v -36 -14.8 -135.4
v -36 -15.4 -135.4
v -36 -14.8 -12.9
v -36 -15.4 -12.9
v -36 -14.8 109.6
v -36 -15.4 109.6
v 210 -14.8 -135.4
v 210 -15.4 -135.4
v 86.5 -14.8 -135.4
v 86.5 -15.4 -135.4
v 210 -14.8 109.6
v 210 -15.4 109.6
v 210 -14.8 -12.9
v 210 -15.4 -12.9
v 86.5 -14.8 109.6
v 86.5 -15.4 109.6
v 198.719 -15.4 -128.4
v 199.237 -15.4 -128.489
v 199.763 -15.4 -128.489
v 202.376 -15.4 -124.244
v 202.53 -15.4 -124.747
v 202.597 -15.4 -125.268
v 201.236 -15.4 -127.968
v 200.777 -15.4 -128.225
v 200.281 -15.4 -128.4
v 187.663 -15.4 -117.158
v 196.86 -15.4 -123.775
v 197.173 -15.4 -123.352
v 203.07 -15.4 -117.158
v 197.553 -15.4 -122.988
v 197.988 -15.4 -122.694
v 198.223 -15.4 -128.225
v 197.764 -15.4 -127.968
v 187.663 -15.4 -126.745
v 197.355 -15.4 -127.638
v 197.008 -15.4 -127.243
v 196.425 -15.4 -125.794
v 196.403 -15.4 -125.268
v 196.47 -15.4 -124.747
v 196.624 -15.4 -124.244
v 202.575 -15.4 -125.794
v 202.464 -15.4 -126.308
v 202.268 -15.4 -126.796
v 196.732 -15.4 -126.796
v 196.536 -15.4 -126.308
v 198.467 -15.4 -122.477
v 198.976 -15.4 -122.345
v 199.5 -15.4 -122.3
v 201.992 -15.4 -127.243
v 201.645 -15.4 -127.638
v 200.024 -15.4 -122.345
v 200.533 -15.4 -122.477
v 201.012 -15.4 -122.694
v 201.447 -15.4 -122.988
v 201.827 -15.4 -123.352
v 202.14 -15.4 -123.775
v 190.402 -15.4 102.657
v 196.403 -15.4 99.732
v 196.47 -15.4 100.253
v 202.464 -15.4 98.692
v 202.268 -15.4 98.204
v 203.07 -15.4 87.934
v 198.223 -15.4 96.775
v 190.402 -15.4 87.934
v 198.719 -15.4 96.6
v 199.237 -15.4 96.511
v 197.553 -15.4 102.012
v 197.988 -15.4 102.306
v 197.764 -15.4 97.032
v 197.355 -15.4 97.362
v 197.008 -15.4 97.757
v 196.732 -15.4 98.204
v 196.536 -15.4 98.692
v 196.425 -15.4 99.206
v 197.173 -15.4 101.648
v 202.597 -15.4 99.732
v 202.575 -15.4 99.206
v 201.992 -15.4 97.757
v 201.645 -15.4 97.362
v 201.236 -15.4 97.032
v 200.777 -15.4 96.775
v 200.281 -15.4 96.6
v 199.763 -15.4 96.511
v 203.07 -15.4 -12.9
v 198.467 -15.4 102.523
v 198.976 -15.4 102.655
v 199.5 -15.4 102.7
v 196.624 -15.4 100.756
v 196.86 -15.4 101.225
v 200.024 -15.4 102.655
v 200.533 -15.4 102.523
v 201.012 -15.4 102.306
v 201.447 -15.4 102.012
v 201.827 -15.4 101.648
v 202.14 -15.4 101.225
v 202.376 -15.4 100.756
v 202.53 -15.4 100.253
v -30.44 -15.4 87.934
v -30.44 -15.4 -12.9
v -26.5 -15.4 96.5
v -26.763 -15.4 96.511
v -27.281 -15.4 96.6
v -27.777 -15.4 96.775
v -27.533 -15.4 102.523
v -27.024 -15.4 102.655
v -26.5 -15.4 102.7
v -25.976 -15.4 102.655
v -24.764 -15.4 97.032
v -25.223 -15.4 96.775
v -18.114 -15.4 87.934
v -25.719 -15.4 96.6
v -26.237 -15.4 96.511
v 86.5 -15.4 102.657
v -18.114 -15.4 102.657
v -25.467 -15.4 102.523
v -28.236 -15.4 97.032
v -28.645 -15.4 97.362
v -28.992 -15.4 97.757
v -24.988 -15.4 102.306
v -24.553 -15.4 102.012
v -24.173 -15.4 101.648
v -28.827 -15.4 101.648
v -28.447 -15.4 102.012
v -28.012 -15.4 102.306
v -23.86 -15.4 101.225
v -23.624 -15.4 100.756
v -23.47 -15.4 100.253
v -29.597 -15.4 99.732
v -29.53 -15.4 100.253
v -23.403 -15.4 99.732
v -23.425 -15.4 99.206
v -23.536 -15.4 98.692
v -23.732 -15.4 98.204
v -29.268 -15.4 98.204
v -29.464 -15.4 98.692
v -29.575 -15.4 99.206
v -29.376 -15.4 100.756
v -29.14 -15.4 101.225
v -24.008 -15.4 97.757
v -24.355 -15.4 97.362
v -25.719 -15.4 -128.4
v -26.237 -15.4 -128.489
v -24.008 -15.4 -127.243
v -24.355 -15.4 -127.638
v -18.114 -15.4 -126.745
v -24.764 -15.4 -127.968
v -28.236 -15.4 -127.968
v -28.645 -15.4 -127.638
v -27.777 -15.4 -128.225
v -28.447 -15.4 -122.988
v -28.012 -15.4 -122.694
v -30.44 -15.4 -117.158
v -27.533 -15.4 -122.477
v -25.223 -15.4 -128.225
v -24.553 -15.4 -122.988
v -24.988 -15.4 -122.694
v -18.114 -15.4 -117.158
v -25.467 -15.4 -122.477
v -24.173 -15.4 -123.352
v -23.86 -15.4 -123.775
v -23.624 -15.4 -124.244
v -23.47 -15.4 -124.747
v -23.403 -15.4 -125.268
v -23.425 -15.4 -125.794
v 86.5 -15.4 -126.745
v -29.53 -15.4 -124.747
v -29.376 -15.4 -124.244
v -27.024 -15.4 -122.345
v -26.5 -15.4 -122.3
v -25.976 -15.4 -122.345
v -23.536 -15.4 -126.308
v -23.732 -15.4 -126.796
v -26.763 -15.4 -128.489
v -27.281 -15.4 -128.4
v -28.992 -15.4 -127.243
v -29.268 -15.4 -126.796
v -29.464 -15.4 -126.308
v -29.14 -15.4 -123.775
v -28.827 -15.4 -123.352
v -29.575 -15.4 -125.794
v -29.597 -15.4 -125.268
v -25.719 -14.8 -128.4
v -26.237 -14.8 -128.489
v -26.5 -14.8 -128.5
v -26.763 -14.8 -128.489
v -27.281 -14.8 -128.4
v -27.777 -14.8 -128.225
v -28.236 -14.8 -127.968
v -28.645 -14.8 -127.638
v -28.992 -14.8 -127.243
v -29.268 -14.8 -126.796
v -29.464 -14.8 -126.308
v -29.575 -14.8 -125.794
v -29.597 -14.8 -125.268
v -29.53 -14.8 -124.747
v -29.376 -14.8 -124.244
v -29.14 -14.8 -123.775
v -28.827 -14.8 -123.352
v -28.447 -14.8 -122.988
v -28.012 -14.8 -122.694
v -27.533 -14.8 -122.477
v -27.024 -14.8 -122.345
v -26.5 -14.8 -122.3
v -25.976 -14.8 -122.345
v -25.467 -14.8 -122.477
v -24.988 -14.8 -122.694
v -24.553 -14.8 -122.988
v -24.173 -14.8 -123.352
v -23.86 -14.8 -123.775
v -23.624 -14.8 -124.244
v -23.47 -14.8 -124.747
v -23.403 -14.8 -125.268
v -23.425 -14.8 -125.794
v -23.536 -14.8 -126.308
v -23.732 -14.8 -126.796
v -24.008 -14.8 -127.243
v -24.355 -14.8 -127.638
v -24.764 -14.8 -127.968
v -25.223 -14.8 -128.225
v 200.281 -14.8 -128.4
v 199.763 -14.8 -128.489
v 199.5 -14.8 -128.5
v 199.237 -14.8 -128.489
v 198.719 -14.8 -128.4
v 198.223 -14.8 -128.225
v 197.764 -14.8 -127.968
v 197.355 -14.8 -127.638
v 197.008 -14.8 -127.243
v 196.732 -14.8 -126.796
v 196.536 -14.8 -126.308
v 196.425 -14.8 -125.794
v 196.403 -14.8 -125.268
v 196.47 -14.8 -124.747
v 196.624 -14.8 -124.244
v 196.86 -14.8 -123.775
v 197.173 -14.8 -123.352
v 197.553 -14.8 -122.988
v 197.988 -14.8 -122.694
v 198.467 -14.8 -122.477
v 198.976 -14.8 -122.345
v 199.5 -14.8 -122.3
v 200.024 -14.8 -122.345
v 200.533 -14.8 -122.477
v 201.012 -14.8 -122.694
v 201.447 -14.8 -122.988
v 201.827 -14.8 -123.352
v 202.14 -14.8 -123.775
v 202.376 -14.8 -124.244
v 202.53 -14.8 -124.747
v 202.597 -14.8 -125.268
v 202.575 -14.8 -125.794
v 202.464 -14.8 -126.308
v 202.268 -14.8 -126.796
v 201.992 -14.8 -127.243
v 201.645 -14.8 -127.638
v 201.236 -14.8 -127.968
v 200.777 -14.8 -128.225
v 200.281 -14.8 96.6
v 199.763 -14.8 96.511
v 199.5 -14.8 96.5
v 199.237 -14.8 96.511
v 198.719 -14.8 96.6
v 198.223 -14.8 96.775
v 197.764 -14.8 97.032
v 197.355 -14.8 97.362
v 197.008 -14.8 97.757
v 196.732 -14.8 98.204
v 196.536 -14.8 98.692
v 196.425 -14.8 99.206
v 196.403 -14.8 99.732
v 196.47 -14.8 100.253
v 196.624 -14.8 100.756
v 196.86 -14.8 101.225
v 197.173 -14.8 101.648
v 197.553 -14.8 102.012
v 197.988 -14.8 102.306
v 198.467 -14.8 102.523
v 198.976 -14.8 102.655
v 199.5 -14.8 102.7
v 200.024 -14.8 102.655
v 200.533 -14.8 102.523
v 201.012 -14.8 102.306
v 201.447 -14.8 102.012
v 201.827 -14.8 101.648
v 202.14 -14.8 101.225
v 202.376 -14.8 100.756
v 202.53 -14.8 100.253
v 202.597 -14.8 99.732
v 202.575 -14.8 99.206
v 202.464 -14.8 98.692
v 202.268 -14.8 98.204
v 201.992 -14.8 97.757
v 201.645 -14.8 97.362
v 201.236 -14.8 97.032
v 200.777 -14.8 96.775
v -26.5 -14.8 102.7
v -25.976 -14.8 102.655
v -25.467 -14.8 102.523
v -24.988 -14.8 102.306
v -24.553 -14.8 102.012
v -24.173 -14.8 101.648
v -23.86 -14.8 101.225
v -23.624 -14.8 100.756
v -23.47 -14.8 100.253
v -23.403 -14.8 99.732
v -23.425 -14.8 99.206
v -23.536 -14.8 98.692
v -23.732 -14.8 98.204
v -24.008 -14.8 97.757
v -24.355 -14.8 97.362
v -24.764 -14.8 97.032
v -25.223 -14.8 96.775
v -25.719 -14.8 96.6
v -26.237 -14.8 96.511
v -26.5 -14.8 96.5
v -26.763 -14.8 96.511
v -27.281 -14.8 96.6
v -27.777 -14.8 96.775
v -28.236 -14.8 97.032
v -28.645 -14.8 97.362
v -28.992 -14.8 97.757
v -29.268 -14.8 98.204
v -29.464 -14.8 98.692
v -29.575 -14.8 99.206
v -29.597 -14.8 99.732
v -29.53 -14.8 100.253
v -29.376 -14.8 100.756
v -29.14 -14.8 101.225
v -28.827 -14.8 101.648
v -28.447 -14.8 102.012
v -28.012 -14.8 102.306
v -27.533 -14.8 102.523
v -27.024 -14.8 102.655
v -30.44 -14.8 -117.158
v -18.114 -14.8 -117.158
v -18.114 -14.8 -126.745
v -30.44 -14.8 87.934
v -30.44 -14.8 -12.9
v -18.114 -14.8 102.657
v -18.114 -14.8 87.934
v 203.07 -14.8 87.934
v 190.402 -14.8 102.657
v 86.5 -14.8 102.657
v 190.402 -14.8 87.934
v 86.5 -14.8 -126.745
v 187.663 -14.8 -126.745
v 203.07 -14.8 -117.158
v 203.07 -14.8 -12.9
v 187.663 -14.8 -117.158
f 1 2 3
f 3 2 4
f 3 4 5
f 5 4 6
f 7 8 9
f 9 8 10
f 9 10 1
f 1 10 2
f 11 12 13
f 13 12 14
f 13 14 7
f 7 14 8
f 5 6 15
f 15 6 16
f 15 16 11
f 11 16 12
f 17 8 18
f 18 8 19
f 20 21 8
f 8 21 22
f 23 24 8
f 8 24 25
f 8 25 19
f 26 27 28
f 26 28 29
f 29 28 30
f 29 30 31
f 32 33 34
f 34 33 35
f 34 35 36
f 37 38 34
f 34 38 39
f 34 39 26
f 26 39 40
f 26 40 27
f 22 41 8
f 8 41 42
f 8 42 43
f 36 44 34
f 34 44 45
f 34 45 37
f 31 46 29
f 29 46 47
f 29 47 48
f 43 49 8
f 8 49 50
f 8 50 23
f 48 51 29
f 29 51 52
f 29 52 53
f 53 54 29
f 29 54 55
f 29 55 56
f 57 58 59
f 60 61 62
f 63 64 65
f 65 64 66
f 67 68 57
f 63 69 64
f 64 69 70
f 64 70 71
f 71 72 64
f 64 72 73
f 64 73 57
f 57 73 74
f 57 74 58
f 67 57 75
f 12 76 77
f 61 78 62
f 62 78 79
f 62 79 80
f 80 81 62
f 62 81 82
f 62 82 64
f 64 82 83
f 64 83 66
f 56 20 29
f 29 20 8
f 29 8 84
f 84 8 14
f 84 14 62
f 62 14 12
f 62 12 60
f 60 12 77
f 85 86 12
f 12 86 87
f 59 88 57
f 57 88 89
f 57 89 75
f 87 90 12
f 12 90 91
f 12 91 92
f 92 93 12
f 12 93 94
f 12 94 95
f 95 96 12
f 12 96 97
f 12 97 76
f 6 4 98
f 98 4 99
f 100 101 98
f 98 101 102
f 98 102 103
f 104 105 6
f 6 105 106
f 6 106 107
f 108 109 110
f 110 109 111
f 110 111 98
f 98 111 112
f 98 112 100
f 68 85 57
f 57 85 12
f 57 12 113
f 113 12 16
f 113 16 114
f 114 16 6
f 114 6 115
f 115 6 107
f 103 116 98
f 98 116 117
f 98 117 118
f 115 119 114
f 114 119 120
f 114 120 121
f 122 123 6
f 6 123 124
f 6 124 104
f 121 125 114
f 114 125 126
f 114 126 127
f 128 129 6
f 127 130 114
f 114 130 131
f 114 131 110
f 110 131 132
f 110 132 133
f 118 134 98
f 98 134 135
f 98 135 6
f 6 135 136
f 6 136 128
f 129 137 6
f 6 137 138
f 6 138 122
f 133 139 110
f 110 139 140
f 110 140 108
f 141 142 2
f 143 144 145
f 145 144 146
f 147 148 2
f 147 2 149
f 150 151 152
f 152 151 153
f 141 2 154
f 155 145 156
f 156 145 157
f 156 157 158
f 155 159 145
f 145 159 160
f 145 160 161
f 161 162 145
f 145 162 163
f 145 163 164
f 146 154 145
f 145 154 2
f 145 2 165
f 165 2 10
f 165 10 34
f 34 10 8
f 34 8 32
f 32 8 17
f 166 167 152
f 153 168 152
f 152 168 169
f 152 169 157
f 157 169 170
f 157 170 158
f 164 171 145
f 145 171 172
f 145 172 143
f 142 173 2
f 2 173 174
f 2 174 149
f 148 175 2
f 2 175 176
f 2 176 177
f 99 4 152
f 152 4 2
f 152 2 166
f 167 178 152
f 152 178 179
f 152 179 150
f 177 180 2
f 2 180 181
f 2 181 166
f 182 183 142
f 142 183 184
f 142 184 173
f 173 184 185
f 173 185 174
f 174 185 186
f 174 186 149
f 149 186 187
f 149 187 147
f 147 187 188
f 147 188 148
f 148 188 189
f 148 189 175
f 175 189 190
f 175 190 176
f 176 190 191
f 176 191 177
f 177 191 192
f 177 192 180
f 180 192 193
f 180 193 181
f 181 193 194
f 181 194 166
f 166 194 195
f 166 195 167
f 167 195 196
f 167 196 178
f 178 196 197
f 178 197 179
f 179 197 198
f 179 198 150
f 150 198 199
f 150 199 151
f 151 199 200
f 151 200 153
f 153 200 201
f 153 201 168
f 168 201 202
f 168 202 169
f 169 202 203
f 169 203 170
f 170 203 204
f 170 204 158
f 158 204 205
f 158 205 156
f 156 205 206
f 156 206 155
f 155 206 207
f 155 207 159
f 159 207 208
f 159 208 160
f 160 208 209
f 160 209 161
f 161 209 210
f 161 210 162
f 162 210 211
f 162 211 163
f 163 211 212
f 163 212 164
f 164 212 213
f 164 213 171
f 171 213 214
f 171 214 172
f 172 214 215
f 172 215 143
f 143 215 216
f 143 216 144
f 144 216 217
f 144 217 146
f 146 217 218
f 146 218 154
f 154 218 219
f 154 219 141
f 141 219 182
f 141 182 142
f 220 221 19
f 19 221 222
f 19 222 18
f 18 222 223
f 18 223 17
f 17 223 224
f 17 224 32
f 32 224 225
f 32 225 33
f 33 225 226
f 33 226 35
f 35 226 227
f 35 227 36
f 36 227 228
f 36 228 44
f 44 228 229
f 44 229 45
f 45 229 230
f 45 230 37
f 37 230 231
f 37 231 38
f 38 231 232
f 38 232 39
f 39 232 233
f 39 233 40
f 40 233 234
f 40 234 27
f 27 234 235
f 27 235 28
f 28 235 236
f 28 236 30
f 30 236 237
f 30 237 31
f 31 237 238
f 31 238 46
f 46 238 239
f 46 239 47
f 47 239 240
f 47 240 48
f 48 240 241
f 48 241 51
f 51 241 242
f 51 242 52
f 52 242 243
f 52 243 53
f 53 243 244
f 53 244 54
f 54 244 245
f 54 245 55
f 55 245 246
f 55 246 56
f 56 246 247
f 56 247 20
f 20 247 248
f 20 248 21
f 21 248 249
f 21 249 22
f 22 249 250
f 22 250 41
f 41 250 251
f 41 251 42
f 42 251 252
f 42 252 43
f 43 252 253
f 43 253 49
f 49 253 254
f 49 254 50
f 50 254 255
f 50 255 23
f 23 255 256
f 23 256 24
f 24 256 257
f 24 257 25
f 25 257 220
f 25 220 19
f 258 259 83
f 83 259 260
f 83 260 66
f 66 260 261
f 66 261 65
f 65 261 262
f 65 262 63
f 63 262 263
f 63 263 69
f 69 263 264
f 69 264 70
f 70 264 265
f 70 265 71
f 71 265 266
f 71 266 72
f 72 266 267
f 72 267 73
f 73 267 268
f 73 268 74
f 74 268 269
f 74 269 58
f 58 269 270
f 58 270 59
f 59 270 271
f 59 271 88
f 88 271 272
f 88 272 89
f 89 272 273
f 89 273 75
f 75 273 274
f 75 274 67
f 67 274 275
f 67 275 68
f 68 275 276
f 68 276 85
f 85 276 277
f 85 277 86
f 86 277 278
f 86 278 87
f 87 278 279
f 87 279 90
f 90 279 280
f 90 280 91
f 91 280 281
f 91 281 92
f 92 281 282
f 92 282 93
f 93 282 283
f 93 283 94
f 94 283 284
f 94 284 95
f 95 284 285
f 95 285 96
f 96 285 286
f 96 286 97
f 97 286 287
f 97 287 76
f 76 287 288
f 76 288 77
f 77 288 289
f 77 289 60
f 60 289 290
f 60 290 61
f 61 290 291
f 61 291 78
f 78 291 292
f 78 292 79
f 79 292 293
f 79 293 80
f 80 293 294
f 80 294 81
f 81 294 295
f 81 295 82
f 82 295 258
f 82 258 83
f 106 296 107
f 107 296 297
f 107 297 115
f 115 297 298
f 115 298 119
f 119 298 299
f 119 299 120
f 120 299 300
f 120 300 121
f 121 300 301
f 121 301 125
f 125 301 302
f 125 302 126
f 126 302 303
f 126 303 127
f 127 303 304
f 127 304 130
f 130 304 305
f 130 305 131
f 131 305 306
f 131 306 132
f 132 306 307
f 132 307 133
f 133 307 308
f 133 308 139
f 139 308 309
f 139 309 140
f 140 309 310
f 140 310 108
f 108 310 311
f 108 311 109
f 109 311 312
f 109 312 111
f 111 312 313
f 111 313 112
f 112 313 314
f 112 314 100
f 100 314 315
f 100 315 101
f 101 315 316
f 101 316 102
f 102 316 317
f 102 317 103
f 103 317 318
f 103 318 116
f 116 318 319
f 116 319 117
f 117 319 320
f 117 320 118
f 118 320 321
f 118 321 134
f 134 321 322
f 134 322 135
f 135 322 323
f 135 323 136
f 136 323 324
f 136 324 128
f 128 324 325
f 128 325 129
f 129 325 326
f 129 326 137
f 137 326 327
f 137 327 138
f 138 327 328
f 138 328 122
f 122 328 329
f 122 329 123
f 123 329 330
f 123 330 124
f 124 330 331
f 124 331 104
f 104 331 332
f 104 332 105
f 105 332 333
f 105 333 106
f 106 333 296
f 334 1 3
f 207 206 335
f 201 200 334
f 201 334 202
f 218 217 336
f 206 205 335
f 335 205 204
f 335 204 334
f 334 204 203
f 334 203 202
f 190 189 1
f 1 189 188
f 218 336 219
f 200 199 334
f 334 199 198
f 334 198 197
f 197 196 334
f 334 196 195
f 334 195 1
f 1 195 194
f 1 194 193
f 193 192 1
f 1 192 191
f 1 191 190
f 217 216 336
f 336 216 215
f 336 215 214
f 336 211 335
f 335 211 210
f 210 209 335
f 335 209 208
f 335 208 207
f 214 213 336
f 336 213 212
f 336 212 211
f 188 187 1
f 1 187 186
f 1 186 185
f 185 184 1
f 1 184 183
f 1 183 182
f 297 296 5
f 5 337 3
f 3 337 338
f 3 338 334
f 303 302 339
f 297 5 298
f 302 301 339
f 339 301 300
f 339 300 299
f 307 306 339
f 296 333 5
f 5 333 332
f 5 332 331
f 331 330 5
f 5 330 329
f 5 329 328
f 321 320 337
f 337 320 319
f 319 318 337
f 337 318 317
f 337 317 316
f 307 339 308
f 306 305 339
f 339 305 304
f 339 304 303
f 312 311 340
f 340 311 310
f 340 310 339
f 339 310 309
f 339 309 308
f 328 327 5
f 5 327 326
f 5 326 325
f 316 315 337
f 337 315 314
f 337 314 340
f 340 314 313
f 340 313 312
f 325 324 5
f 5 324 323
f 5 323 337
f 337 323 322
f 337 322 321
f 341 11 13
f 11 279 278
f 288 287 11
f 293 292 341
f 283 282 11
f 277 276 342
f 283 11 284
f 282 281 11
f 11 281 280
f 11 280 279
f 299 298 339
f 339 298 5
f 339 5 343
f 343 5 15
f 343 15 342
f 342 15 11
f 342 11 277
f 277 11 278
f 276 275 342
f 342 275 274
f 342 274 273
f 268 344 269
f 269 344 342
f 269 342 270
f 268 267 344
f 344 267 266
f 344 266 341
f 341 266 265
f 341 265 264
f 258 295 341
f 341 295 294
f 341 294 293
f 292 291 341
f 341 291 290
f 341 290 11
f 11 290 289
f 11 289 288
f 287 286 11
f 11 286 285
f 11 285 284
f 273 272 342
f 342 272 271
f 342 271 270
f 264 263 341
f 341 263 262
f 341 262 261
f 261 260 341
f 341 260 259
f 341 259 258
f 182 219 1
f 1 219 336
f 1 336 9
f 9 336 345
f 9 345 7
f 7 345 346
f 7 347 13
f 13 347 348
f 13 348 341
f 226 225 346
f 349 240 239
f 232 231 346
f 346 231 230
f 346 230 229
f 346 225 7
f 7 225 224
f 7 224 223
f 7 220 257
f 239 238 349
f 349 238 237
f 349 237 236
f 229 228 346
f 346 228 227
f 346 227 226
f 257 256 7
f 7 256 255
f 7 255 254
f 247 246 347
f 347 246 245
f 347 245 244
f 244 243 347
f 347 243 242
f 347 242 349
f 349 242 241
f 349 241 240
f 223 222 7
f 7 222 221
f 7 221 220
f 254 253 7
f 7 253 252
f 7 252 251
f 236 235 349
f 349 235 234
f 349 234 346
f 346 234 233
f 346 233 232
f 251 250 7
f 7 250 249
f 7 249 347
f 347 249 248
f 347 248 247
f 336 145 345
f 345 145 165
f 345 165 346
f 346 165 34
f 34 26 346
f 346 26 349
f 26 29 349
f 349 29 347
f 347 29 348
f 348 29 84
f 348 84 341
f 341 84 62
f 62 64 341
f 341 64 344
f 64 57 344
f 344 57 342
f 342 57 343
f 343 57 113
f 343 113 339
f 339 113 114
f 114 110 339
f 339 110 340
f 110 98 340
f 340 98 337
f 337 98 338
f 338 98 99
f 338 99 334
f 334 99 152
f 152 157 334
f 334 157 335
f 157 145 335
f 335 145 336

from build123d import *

# Parameters (mm, degrees)
BOSS_EXTRUDE1_DEPTH   = 5.5
BOSS_EXTRUDE1_2_DEPTH = 5.5
SKETCH2_W             = 112.4
SKETCH2_H             = 112.4
BOSS_EXTRUDE2_DEPTH   = 9.4
BOSS_EXTRUDE3_START   = 9.4
SKETCH2_3_W           = 246
SKETCH2_3_H           = 245
BOSS_EXTRUDE3_DEPTH   = 6
SKETCH3_R             = 3.1
CUT_EXTRUDE1_DEPTH    = 251.310147617
BOSS_EXTRUDE4_DEPTH   = 15
SKETCH5_W             = 16
SKETCH5_H             = 22.5
BOSS_EXTRUDE5_DEPTH   = 3.9
SKETCH6_W             = 16
SKETCH6_H             = 20.5
CUT_EXTRUDE2_DEPTH    = 3.4
CHAMFER1_SIZE         = 2
CHAMFER2_SIZE         = 3.05
CHAMFER3_SIZE         = 3
CHAMFER4_SIZE         = 3
SKETCH8_W             = 79.1
SKETCH8_H             = 5
CUT_EXTRUDE3_DEPTH    = 0.1
SKETCH9_W             = 246
SKETCH9_H             = 27.9
CUT_EXTRUDE4_DEPTH    = 324.051327191
CUT_EXTRUDE5_DEPTH    = 250.867004624


with BuildPart() as part:
    # Sketch1 → Boss-Extrude1 (new body)
    with BuildSketch(Plane(origin=(0, 0, 0), x_dir=(1, 0, 0), z_dir=(0, 1, 0))):
        Polygon((-6, -6), (-6, 106.4), (7.7, 106.4), (7.7, 100.4), (0, 100.4), (0, 0), (100.4, 0), (100.4, 40.9), (106.4, 40.9), (106.4, -6), align=None)
    extrude(amount=BOSS_EXTRUDE1_DEPTH)



with BuildPart() as body_2:
    # Sketch1 → Boss-Extrude1 2 (new body)
    with BuildSketch(Plane(origin=(0, 0, 0), x_dir=(1, 0, 0), z_dir=(0, 1, 0))):
        Polygon((92.7, 100.4), (92.7, 106.4), (106.4, 106.4), (106.4, 59.5), (100.4, 59.5), (100.4, 100.4), align=None)
    extrude(amount=BOSS_EXTRUDE1_2_DEPTH)


with BuildPart() as part_1:
    add(part.part)

    add(body_2.part)  # Boss-Extrude2 merges body 2
    # Sketch2 → Boss-Extrude2 (add)
    with BuildSketch(Plane.XZ):
        with Locations((50.2, -50.2)):
            Rectangle(SKETCH2_W, SKETCH2_H)
    extrude(amount=BOSS_EXTRUDE2_DEPTH)

    # Sketch2<3> → Boss-Extrude3 (add)
    with BuildSketch(Plane.XZ.offset(BOSS_EXTRUDE3_START)):
        with Locations((87, -12.9)):
            Rectangle(SKETCH2_3_W, SKETCH2_3_H)
    extrude(amount=BOSS_EXTRUDE3_DEPTH)

    # Sketch3 → Cut-Extrude1 (cut, through all)
    with BuildSketch(Plane(origin=(0, -9.4, 0), x_dir=(1, 0, 0), z_dir=(0, 1, 0))):
        with Locations(Location((-26.5, 125.4, 0), (0, 0, 270))):
            Circle(SKETCH3_R)
        with Locations(Location((-26.5, -99.6, 0), (0, 0, 90))):
            Circle(SKETCH3_R)
        with Locations(Location((199.5, 125.4, 0), (0, 0, 270))):
            Circle(SKETCH3_R)
        with Locations(Location((199.5, -99.6, 0), (0, 0, 270))):
            Circle(SKETCH3_R)
    extrude(amount=-CUT_EXTRUDE1_DEPTH, mode=Mode.SUBTRACT)

    # Sketch4 → Boss-Extrude4 (add)
    with BuildSketch(Plane(origin=(0, -9.4, 0), x_dir=(1, 0, 0), z_dir=(0, 1, 0))):
        with BuildLine():
            Line((-16, -109.6), (49, -109.6))
            Line((49, -109.6), (49, -6))
            Line((49, -6), (-36, -6))
            Line((-36, -6), (-36, -89.6))
            Line((-36, -89.6), (-22, -89.6))
            ThreePointArc((-22, -89.6), (-17.757359313, -91.357359313), (-16, -95.6))
            Line((-16, -95.6), (-16, -109.6))
        make_face()
    extrude(amount=BOSS_EXTRUDE4_DEPTH)

    # Sketch5 → Boss-Extrude5 (add)
    with BuildSketch(Plane(origin=(0, 0, -106.4), x_dir=(-1, 0, 0), z_dir=(0, 0, -1))):
        with Locations((-99.9, 1.85)):
            Rectangle(SKETCH5_W, SKETCH5_H)
        with Locations((-0.5, 1.85)):
            Rectangle(SKETCH5_W, SKETCH5_H)
    extrude(amount=BOSS_EXTRUDE5_DEPTH)

    # Sketch6 → Cut-Extrude2 (cut)
    with BuildSketch(Plane(origin=(0, 0, -110.3), x_dir=(-1, 0, 0), z_dir=(0, 0, -1))):
        with Locations((-0.5, 0.85)):
            Rectangle(SKETCH6_W, SKETCH6_H)
        with Locations((-99.9, 0.85)):
            Rectangle(SKETCH6_W, SKETCH6_H)
    extrude(amount=-CUT_EXTRUDE2_DEPTH, mode=Mode.SUBTRACT)

    # Chamfer1
    # the kernel refuses this chamfer: 2 mm, written as the material it adds along each edge
    with BuildSketch(Plane(origin=(92.7, -5.143365976, -106.4), x_dir=(-0.9996219169112968, 0, -0.027495876610589005), z_dir=(0, 1, 0))) as chamfer1_piece_1_section:
        Polygon((CHAMFER1_SIZE * 0.999621916911, CHAMFER1_SIZE * 0.0274958766106), (-CHAMFER1_SIZE * 0.0274958766106, CHAMFER1_SIZE * 0.999621916911), (0, 0), align=None)
    chamfer1_piece_1 = extrude(amount=10.643365976, mode=Mode.PRIVATE)
    chamfer1_piece_1 = split(chamfer1_piece_1, bisect_by=Plane(origin=(91.9, -2.571682988, -105.57221902), z_dir=(1, 0, 0)), keep=Keep.TOP, mode=Mode.PRIVATE)
    add(chamfer1_piece_1)
    with BuildSketch(Plane(origin=(92.7, 5.5, -106.4), x_dir=(0, 0.9996219169112968, -0.027495876610589075), z_dir=(1, 0, 0)), Plane(origin=(-6, 5.5, -106.4), x_dir=(0, 0.9996219169112968, -0.027495876610589075), z_dir=(1, 0, 0))) as chamfer1_piece_2:
        Polygon((CHAMFER1_SIZE * 0.999621916911, CHAMFER1_SIZE * 0.0274958766106), (-CHAMFER1_SIZE * 0.0274958766106, CHAMFER1_SIZE * 0.999621916911), (0, 0), align=None)
    extrude(amount=13.7)
    with BuildSketch(Plane(origin=(106.4, 5.5, -106.4), x_dir=(-0.027495876610589005, 0, 0.9996219169112968), z_dir=(0, -1, 0))) as chamfer1_piece_3_section:
        Polygon((CHAMFER1_SIZE * 0.999621916911, -CHAMFER1_SIZE * 0.0274958766106), (-CHAMFER1_SIZE * 0.0274958766106, -CHAMFER1_SIZE * 0.999621916911), (0, 0), align=None)
    chamfer1_piece_3 = extrude(amount=14.9, mode=Mode.PRIVATE)
    chamfer1_piece_3 = split(chamfer1_piece_3, bisect_by=Plane(origin=(107.9, -1.95, -105.69608178), z_dir=(-1, 0, 0)), keep=Keep.TOP, mode=Mode.PRIVATE)
    add(chamfer1_piece_3)
    with BuildSketch(Plane(origin=(106.4, 5.5, -106.4), x_dir=(-0.027495876610589005, 0, 0.9996219169112968), z_dir=(0, -1, 0))) as chamfer1_piece_4_section:
        Polygon((CHAMFER1_SIZE * 0.999621916911, -CHAMFER1_SIZE * 0.0274958766106), (-CHAMFER1_SIZE * 0.0274958766106, -CHAMFER1_SIZE * 0.999621916911), (0, 0), align=None)
    chamfer1_piece_4 = extrude(amount=20.043365976, mode=Mode.PRIVATE)
    chamfer1_piece_4 = split(chamfer1_piece_4, bisect_by=Plane(origin=(106.974972825, -9.4, -105.69608178), z_dir=(0, -1, 0)), keep=Keep.TOP, mode=Mode.PRIVATE)
    chamfer1_piece_4 = split(chamfer1_piece_4, bisect_by=Plane(origin=(107.9, -11.971682988, -105.69608178), z_dir=(-1, 0, 0)), keep=Keep.TOP, mode=Mode.PRIVATE)
    add(chamfer1_piece_4)
    with BuildSketch(Plane(origin=(106.4, 5.5, -106.4), x_dir=(-0.027495876610589005, 0, 0.9996219169112968), z_dir=(0, -1, 0))) as chamfer1_piece_5_section:
        Polygon((CHAMFER1_SIZE * 0.999621916911, -CHAMFER1_SIZE * 0.0274958766106), (-CHAMFER1_SIZE * 0.0274958766106, -CHAMFER1_SIZE * 0.999621916911), (0, 0), align=None)
    chamfer1_piece_5 = extrude(amount=20.043365976, mode=Mode.PRIVATE)
    chamfer1_piece_5 = split(chamfer1_piece_5, bisect_by=Plane(origin=(108.09753906, -9.4, -106.284213701), z_dir=(0, -1, 0)), keep=Keep.TOP, mode=Mode.PRIVATE)
    chamfer1_piece_5 = split(chamfer1_piece_5, bisect_by=Plane(origin=(107.9, -11.971682988, -106.284213701), z_dir=(1, 0, 0)), keep=Keep.TOP, mode=Mode.PRIVATE)
    add(chamfer1_piece_5)
    with BuildSketch(Plane(origin=(7.7, -5.143365976, -106.4), x_dir=(0.9996219169112965, 0, -0.027495876610589057), z_dir=(0, 1, 0))) as chamfer1_piece_6_section:
        Polygon((CHAMFER1_SIZE * 0.999621916911, -CHAMFER1_SIZE * 0.0274958766106), (-CHAMFER1_SIZE * 0.0274958766106, -CHAMFER1_SIZE * 0.999621916911), (0, 0), align=None)
    chamfer1_piece_6 = extrude(amount=10.643365976, mode=Mode.PRIVATE)
    chamfer1_piece_6 = split(chamfer1_piece_6, bisect_by=Plane(origin=(8.5, -2.571682988, -105.57221902), z_dir=(-1, 0, 0)), keep=Keep.TOP, mode=Mode.PRIVATE)
    add(chamfer1_piece_6)
    with BuildSketch(Plane(origin=(-6, 5.5, -106.4), x_dir=(-0.9996219169112968, 0, -0.027495876610589075), z_dir=(0, -1, 0))) as chamfer1_piece_7_section:
        Polygon((CHAMFER1_SIZE * 0.999621916911, -CHAMFER1_SIZE * 0.0274958766106), (-CHAMFER1_SIZE * 0.0274958766106, -CHAMFER1_SIZE * 0.999621916911), (0, 0), align=None)
    chamfer1_piece_7 = extrude(amount=14.9, mode=Mode.PRIVATE)
    chamfer1_piece_7 = split(chamfer1_piece_7, bisect_by=Plane(origin=(-7.5, -1.95, -105.69608178), z_dir=(1, 0, 0)), keep=Keep.TOP, mode=Mode.PRIVATE)
    add(chamfer1_piece_7)
    with BuildSketch(Plane(origin=(-6, 5.5, -106.4), x_dir=(-0.9996219169112968, 0, -0.027495876610589075), z_dir=(0, -1, 0))) as chamfer1_piece_8_section:
        Polygon((CHAMFER1_SIZE * 0.999621916911, -CHAMFER1_SIZE * 0.0274958766106), (-CHAMFER1_SIZE * 0.0274958766106, -CHAMFER1_SIZE * 0.999621916911), (0, 0), align=None)
    chamfer1_piece_8 = extrude(amount=20.043365976, mode=Mode.PRIVATE)
    chamfer1_piece_8 = split(chamfer1_piece_8, bisect_by=Plane(origin=(-7.69753906, -9.4, -106.284213701), z_dir=(0, -1, 0)), keep=Keep.TOP, mode=Mode.PRIVATE)
    chamfer1_piece_8 = split(chamfer1_piece_8, bisect_by=Plane(origin=(-7.5, -11.971682988, -106.284213701), z_dir=(-1, 0, 0)), keep=Keep.TOP, mode=Mode.PRIVATE)
    add(chamfer1_piece_8)
    with BuildSketch(Plane(origin=(-6, 5.5, -106.4), x_dir=(-0.9996219169112968, 0, -0.027495876610589075), z_dir=(0, -1, 0))) as chamfer1_piece_9_section:
        Polygon((CHAMFER1_SIZE * 0.999621916911, -CHAMFER1_SIZE * 0.0274958766106), (-CHAMFER1_SIZE * 0.0274958766106, -CHAMFER1_SIZE * 0.999621916911), (0, 0), align=None)
    chamfer1_piece_9 = extrude(amount=20.043365976, mode=Mode.PRIVATE)
    chamfer1_piece_9 = split(chamfer1_piece_9, bisect_by=Plane(origin=(-6.574972825, -9.4, -105.69608178), z_dir=(0, -1, 0)), keep=Keep.TOP, mode=Mode.PRIVATE)
    chamfer1_piece_9 = split(chamfer1_piece_9, bisect_by=Plane(origin=(-7.5, -11.971682988, -105.69608178), z_dir=(1, 0, 0)), keep=Keep.TOP, mode=Mode.PRIVATE)
    add(chamfer1_piece_9)
    with BuildSketch(Plane(origin=(87.556634024, 5.5, -106.4), x_dir=(0, 0.9996219169112968, -0.027495876610589075), z_dir=(1, 0, 0))) as chamfer1_piece_10a_section:
        Polygon((CHAMFER1_SIZE * 0.999621916911, CHAMFER1_SIZE * 0.0274958766106), (-CHAMFER1_SIZE * 0.0274958766106, CHAMFER1_SIZE * 0.999621916911), (0, 0), align=None)
    chamfer1_piece_10a = extrude(amount=18.843365976, mode=Mode.PRIVATE)
    chamfer1_piece_10a = split(chamfer1_piece_10a, bisect_by=Plane(origin=(91.9, 6.159587254, -105.740412746), z_dir=(1, 0, 0)), keep=Keep.TOP, mode=Mode.PRIVATE)
    chamfer1_piece_10a = split(chamfer1_piece_10a, bisect_by=Plane(origin=(92.7, 6.159587254, -105.740412746), z_dir=(-1, 0, 0)), keep=Keep.TOP, mode=Mode.PRIVATE)
    with BuildSketch(Plane(origin=(92.7, 0, -106.4), x_dir=(-0.9996219169112968, 0, -0.027495876610589005), z_dir=(0, 1, 0))) as chamfer1_piece_10b_section:
        Polygon((CHAMFER1_SIZE * 0.999621916911, CHAMFER1_SIZE * 0.0274958766106), (-CHAMFER1_SIZE * 0.0274958766106, CHAMFER1_SIZE * 0.999621916911), (0, 0), align=None)
    chamfer1_piece_10b = extrude(amount=10.643365976, mode=Mode.PRIVATE)
    chamfer1_piece_10b = split(chamfer1_piece_10b, bisect_by=Plane(origin=(91.9, 8.071682988, -105.57221902), z_dir=(1, 0, 0)), keep=Keep.TOP, mode=Mode.PRIVATE)
    chamfer1_piece_10b = split(chamfer1_piece_10b, bisect_by=Plane(origin=(92.36112716, 5.5, -105.57221902), z_dir=(0, 1, 0)), keep=Keep.TOP, mode=Mode.PRIVATE)
    chamfer1_piece_10 = chamfer1_piece_10a & chamfer1_piece_10b
    add(chamfer1_piece_10)
    with BuildSketch(Plane(origin=(106.4, 10.643365976, -106.4), x_dir=(-0.027495876610589005, 0, 0.9996219169112968), z_dir=(0, -1, 0))) as chamfer1_piece_11a_section:
        Polygon((CHAMFER1_SIZE * 0.999621916911, -CHAMFER1_SIZE * 0.0274958766106), (-CHAMFER1_SIZE * 0.0274958766106, -CHAMFER1_SIZE * 0.999621916911), (0, 0), align=None)
    chamfer1_piece_11a = extrude(amount=20.043365976, mode=Mode.PRIVATE)
    chamfer1_piece_11a = split(chamfer1_piece_11a, bisect_by=Plane(origin=(106.974972825, 5.5, -105.69608178), z_dir=(0, 1, 0)), keep=Keep.TOP, mode=Mode.PRIVATE)
    chamfer1_piece_11a = split(chamfer1_piece_11a, bisect_by=Plane(origin=(107.9, 8.071682988, -105.69608178), z_dir=(-1, 0, 0)), keep=Keep.TOP, mode=Mode.PRIVATE)
    with BuildSketch(Plane(origin=(92.7, 5.5, -106.4), x_dir=(0, 0.9996219169112968, -0.027495876610589075), z_dir=(1, 0, 0))) as chamfer1_piece_11b_section:
        Polygon((CHAMFER1_SIZE * 0.999621916911, CHAMFER1_SIZE * 0.0274958766106), (-CHAMFER1_SIZE * 0.0274958766106, CHAMFER1_SIZE * 0.999621916911), (0, 0), align=None)
    chamfer1_piece_11b = extrude(amount=18.843365976, mode=Mode.PRIVATE)
    chamfer1_piece_11b = split(chamfer1_piece_11b, bisect_by=Plane(origin=(106.4, 6.159587254, -105.740412746), z_dir=(1, 0, 0)), keep=Keep.TOP, mode=Mode.PRIVATE)
    chamfer1_piece_11b = split(chamfer1_piece_11b, bisect_by=Plane(origin=(107.9, 6.159587254, -105.740412746), z_dir=(-1, 0, 0)), keep=Keep.TOP, mode=Mode.PRIVATE)
    chamfer1_piece_11 = chamfer1_piece_11a & chamfer1_piece_11b
    add(chamfer1_piece_11)
    with BuildSketch(Plane(origin=(-6, 5.5, -106.4), x_dir=(0, 0.9996219169112968, -0.027495876610589075), z_dir=(1, 0, 0))) as chamfer1_piece_12a_section:
        Polygon((CHAMFER1_SIZE * 0.999621916911, CHAMFER1_SIZE * 0.0274958766106), (-CHAMFER1_SIZE * 0.0274958766106, CHAMFER1_SIZE * 0.999621916911), (0, 0), align=None)
    chamfer1_piece_12a = extrude(amount=18.843365976, mode=Mode.PRIVATE)
    chamfer1_piece_12a = split(chamfer1_piece_12a, bisect_by=Plane(origin=(8.5, 6.159587254, -105.740412746), z_dir=(-1, 0, 0)), keep=Keep.TOP, mode=Mode.PRIVATE)
    chamfer1_piece_12a = split(chamfer1_piece_12a, bisect_by=Plane(origin=(7.7, 6.159587254, -105.740412746), z_dir=(1, 0, 0)), keep=Keep.TOP, mode=Mode.PRIVATE)
    with BuildSketch(Plane(origin=(7.7, 0, -106.4), x_dir=(0.9996219169112965, 0, -0.027495876610589057), z_dir=(0, 1, 0))) as chamfer1_piece_12b_section:
        Polygon((CHAMFER1_SIZE * 0.999621916911, -CHAMFER1_SIZE * 0.0274958766106), (-CHAMFER1_SIZE * 0.0274958766106, -CHAMFER1_SIZE * 0.999621916911), (0, 0), align=None)
    chamfer1_piece_12b = extrude(amount=10.643365976, mode=Mode.PRIVATE)
    chamfer1_piece_12b = split(chamfer1_piece_12b, bisect_by=Plane(origin=(8.5, 8.071682988, -105.57221902), z_dir=(-1, 0, 0)), keep=Keep.TOP, mode=Mode.PRIVATE)
    chamfer1_piece_12b = split(chamfer1_piece_12b, bisect_by=Plane(origin=(8.03887284, 5.5, -105.57221902), z_dir=(0, 1, 0)), keep=Keep.TOP, mode=Mode.PRIVATE)
    chamfer1_piece_12 = chamfer1_piece_12a & chamfer1_piece_12b
    add(chamfer1_piece_12)
    with BuildSketch(Plane(origin=(-6, 10.643365976, -106.4), x_dir=(-0.9996219169112968, 0, -0.027495876610589075), z_dir=(0, -1, 0))) as chamfer1_piece_13a_section:
        Polygon((CHAMFER1_SIZE * 0.999621916911, -CHAMFER1_SIZE * 0.0274958766106), (-CHAMFER1_SIZE * 0.0274958766106, -CHAMFER1_SIZE * 0.999621916911), (0, 0), align=None)
    chamfer1_piece_13a = extrude(amount=20.043365976, mode=Mode.PRIVATE)
    chamfer1_piece_13a = split(chamfer1_piece_13a, bisect_by=Plane(origin=(-7.5, 8.071682988, -105.69608178), z_dir=(1, 0, 0)), keep=Keep.TOP, mode=Mode.PRIVATE)
    chamfer1_piece_13a = split(chamfer1_piece_13a, bisect_by=Plane(origin=(-6.574972825, 5.5, -105.69608178), z_dir=(0, 1, 0)), keep=Keep.TOP, mode=Mode.PRIVATE)
    with BuildSketch(Plane(origin=(-11.143365976, 5.5, -106.4), x_dir=(0, 0.9996219169112968, -0.027495876610589075), z_dir=(1, 0, 0))) as chamfer1_piece_13b_section:
        Polygon((CHAMFER1_SIZE * 0.999621916911, CHAMFER1_SIZE * 0.0274958766106), (-CHAMFER1_SIZE * 0.0274958766106, CHAMFER1_SIZE * 0.999621916911), (0, 0), align=None)
    chamfer1_piece_13b = extrude(amount=18.843365976, mode=Mode.PRIVATE)
    chamfer1_piece_13b = split(chamfer1_piece_13b, bisect_by=Plane(origin=(-7.5, 6.159587254, -105.740412746), z_dir=(1, 0, 0)), keep=Keep.TOP, mode=Mode.PRIVATE)
    chamfer1_piece_13b = split(chamfer1_piece_13b, bisect_by=Plane(origin=(-6, 6.159587254, -105.740412746), z_dir=(-1, 0, 0)), keep=Keep.TOP, mode=Mode.PRIVATE)
    chamfer1_piece_13 = chamfer1_piece_13a & chamfer1_piece_13b
    add(chamfer1_piece_13)
    # the kernel refuses this chamfer: 2 mm, written as the material it takes off along each edge
    with BuildSketch(Plane(origin=(113.043365976, 13.1, -106.4), x_dir=(1.4427442484973125e-15, -0.9996219169112968, 0.027495876610589075), z_dir=(-1, 0, 0)), Plane(origin=(-12.643365976, 13.1, -106.4), x_dir=(0, 0.027495876610586414, -0.9996219169112968), z_dir=(1, 0, 0))) as chamfer1_2_piece_1:
        Polygon((CHAMFER1_SIZE * 0.999621916911, -CHAMFER1_SIZE * 0.0274958766106), (-CHAMFER1_SIZE * 0.0274958766106, -CHAMFER1_SIZE * 0.999621916911), (0, 0), align=None)
    extrude(amount=26.286731952, mode=Mode.SUBTRACT)

    # Chamfer2
    chamfer2_edges = [part_1.edges().sort_by_distance(p)[0] for p in [
        (199.5, -9.4, -128.5),
        (-26.5, -9.4, -128.5),
        (-26.5, -9.4, 102.7),
        (199.5, -9.4, 96.5),
    ]]
    chamfer(chamfer2_edges, length=CHAMFER2_SIZE)

    # Chamfer3
    chamfer3_edges = [part_1.edges().sort_by_distance(p)[0] for p in [
        (106.4, 5.5, -17.45),
    ]]
    chamfer(chamfer3_edges, length=CHAMFER3_SIZE)
    chamfer3_2_edges = [part_1.edges().sort_by_distance(p)[0] for p in [
        (106.4, 5.5, -81.95),
    ]]
    chamfer(chamfer3_2_edges, length=CHAMFER3_SIZE)
    chamfer3_3_edges = [part_1.edges().sort_by_distance(p)[0] for p in [
        (76.2, 5.5, 6),
    ]]
    chamfer(chamfer3_3_edges, length=CHAMFER3_SIZE)
    chamfer3_4_edges = [part_1.edges().sort_by_distance(p)[0] for p in [
        (49, 5.6, 57.8),
    ]]
    chamfer(chamfer3_4_edges, length=CHAMFER3_SIZE)
    chamfer3_5_edges = [part_1.edges().sort_by_distance(p)[0] for p in [
        (15, 5.6, 109.6),
    ]]
    chamfer(chamfer3_5_edges, length=CHAMFER3_SIZE)
    chamfer3_6_edges = [part_1.edges().sort_by_distance(p)[0] for p in [
        (-36, 5.6, 47.8),
    ]]
    chamfer(chamfer3_6_edges, length=CHAMFER3_SIZE)
    chamfer3_7_edges = [part_1.edges().sort_by_distance(p)[0] for p in [
        (-6, 5.5, -49.2),
    ]]
    chamfer(chamfer3_7_edges, length=CHAMFER3_SIZE)
    chamfer3_8_edges = [part_1.edges().sort_by_distance(p)[0] for p in [
        (-16, 5.6, 101.1),
        (-27.5, 5.6, 89.6),
        (-17.757359313, 5.6, 91.357359313),
    ]]
    chamfer(chamfer3_8_edges, length=CHAMFER3_SIZE)

    # Chamfer4
    chamfer4_edges = [part_1.edges().sort_by_distance(p)[0] for p in [
        (-36, -9.4, -64.7),
        (129.5, -9.4, 109.6),
        (-36, -3.4, 89.6),
        (-36, -3.4, 6),
        (-16, -3.4, 109.6),
        (49, -3.4, 109.6),
        (-36, -9.4, 99.6),
        (87, -9.4, -135.4),
        (-26, -9.4, 109.6),
        (210, -9.4, -12.9),
    ]]
    chamfer(chamfer4_edges, length=CHAMFER4_SIZE)

    # Sketch8 → Cut-Extrude3 (cut)
    with BuildSketch(Plane(origin=(0, 5.6, 0), x_dir=(1, 0, 0), z_dir=(0, 1, 0))):
        with Locations((6.55, -8.5)):
            Rectangle(SKETCH8_W, SKETCH8_H)
    extrude(amount=-CUT_EXTRUDE3_DEPTH, mode=Mode.SUBTRACT)

    # Chamfer5
    # the kernel refuses this chamfer: 3 mm, written as the material it takes off along each edge
    with BuildSketch(Plane(origin=(6.229157809, 5.5, 6), x_dir=(0, -0.9850292351397439, -0.17238737169529297), z_dir=(-1, 0, 0))) as chamfer5_piece_1_section:
        with BuildLine():
            Line((3.691663124, 0), (-1.253737533, 3.472249821))
            Line((-1.253737533, 3.472249821), (-1.697000689, 3.394675503))
            ThreePointArc((-1.697000689, 3.394675503), (-0.756697539, 1.713403919), (-0.443263156, -0.077574317))
            Line((-0.443263156, -0.077574317), (0.077574317, -0.443263156))
            ThreePointArc((0.077574317, -0.443263156), (1.868552553, -0.129828772), (3.769237441, -0.443263156))
            Line((3.769237441, -0.443263156), (3.691663124, 0))
        make_face()
    chamfer5_piece_1 = extrude(amount=39.229157809, mode=Mode.PRIVATE)
    chamfer5_piece_1 = split(chamfer5_piece_1, bisect_by=Plane(origin=(-4.039459416, 4.460540584, 7.280331392), z_dir=(-0.7071067811865476, 0.7071067811865476, 0)), keep=Keep.TOP, mode=Mode.PRIVATE)
    chamfer5_piece_1 = split(chamfer5_piece_1, bisect_by=Plane(origin=(-6, 5.114054112, 7.280331392), z_dir=(1, 0, 0)), keep=Keep.TOP, mode=Mode.PRIVATE)
    add(chamfer5_piece_1, mode=Mode.SUBTRACT)
    with BuildSketch(Plane(origin=(6.229157809, 5.5, 6), x_dir=(0, -0.9850292351397439, -0.17238737169529297), z_dir=(-1, 0, 0))) as chamfer5_piece_2_section:
        with BuildLine():
            Line((3.691663124, 0), (-1.253737533, 3.472249821))
            Line((-1.253737533, 3.472249821), (-1.697000689, 3.394675503))
            ThreePointArc((-1.697000689, 3.394675503), (-0.756697539, 1.713403919), (-0.443263156, -0.077574317))
            Line((-0.443263156, -0.077574317), (0.077574317, -0.443263156))
            ThreePointArc((0.077574317, -0.443263156), (1.868552553, -0.129828772), (3.769237441, -0.443263156))
            Line((3.769237441, -0.443263156), (3.691663124, 0))
        make_face()
    chamfer5_piece_2 = extrude(amount=39.229157809, mode=Mode.PRIVATE)
    chamfer5_piece_2 = split(chamfer5_piece_2, bisect_by=Plane(origin=(-6.302738925, 2.197261075, 5.315019574), z_dir=(0.7071067811865476, -0.7071067811865476, 0)), keep=Keep.TOP, mode=Mode.PRIVATE)
    chamfer5_piece_2 = split(chamfer5_piece_2, bisect_by=Plane(origin=(-6, 2.0963481, 5.315019574), z_dir=(-1, 0, 0)), keep=Keep.TOP, mode=Mode.PRIVATE)
    add(chamfer5_piece_2, mode=Mode.SUBTRACT)
    with BuildSketch(Plane(origin=(6.229157809, 5.5, 6), x_dir=(0, -0.9850292351397439, -0.17238737169529297), z_dir=(-1, 0, 0))) as chamfer5_piece_3_section:
        with BuildLine():
            Line((3.691663124, 0), (-1.253737533, 3.472249821))
            Line((-1.253737533, 3.472249821), (-1.697000689, 3.394675503))
            ThreePointArc((-1.697000689, 3.394675503), (-0.756697539, 1.713403919), (-0.443263156, -0.077574317))
            Line((-0.443263156, -0.077574317), (0.077574317, -0.443263156))
            ThreePointArc((0.077574317, -0.443263156), (1.868552553, -0.129828772), (3.769237441, -0.443263156))
            Line((3.769237441, -0.443263156), (3.691663124, 0))
        make_face()
    chamfer5_piece_3 = extrude(amount=39.229157809, mode=Mode.PRIVATE)
    chamfer5_piece_3 = split(chamfer5_piece_3, bisect_by=Plane(origin=(-11.711520685, -3.211520685, 6.918404597), z_dir=(-0.7071067811865476, 0.7071067811865476, 0)), keep=Keep.TOP, mode=Mode.PRIVATE)
    chamfer5_piece_3 = split(chamfer5_piece_3, bisect_by=Plane(origin=(-6, 4.583653926, 6.918404597), z_dir=(-1, 0, 0)), keep=Keep.TOP, mode=Mode.PRIVATE)
    add(chamfer5_piece_3, mode=Mode.SUBTRACT)
    with BuildSketch(Plane(origin=(6.229157809, 5.5, 6), x_dir=(0, -0.9850292351397439, -0.17238737169529297), z_dir=(-1, 0, 0))) as chamfer5_piece_4_section:
        with BuildLine():
            Line((3.691663124, 0), (-1.253737533, 3.472249821))
            Line((-1.253737533, 3.472249821), (-1.697000689, 3.394675503))
            ThreePointArc((-1.697000689, 3.394675503), (-0.756697539, 1.713403919), (-0.443263156, -0.077574317))
            Line((-0.443263156, -0.077574317), (0.077574317, -0.443263156))
            ThreePointArc((0.077574317, -0.443263156), (1.868552553, -0.129828772), (3.769237441, -0.443263156))
            Line((3.769237441, -0.443263156), (3.691663124, 0))
        make_face()
    chamfer5_piece_4 = extrude(amount=48.458315618, mode=Mode.PRIVATE)
    chamfer5_piece_4 = split(chamfer5_piece_4, bisect_by=Plane(origin=(-33, 4.582402261, 6.917597739), z_dir=(-1, 0, 0)), keep=Keep.TOP, mode=Mode.PRIVATE)
    add(chamfer5_piece_4, mode=Mode.SUBTRACT)

    # Sketch9 → Cut-Extrude4 (cut, through all)
    with BuildSketch(Plane.XY.offset(109.6)):
        with Locations((87, -0.85)):
            Rectangle(SKETCH9_W, SKETCH9_H)
    extrude(amount=-CUT_EXTRUDE4_DEPTH, mode=Mode.SUBTRACT)

    # Sketch10 → Cut-Extrude5 (cut, through all)
    with BuildSketch(Plane(origin=(0, -14.8, 0), x_dir=(1, 0, 0), z_dir=(0, 1, 0))):
        Polygon((-13.320267735, 126.74467243), (187.662657728, 126.74467243), (187.662657728, 117.157752647), (203.07020738, 117.157752647), (203.07020738, -87.933852724), (190.401777666, -87.933852724), (190.401777666, -102.656622391), (-18.113727627, -102.656622391), (-18.113727627, -87.933852724), (-30.439767349, -87.933852724), (-30.439767349, 117.157752647), (-18.113727627, 117.157752647), (-18.113727627, 126.74467243), align=None)
    extrude(amount=-CUT_EXTRUDE5_DEPTH, mode=Mode.SUBTRACT)


solid = part_1.part
